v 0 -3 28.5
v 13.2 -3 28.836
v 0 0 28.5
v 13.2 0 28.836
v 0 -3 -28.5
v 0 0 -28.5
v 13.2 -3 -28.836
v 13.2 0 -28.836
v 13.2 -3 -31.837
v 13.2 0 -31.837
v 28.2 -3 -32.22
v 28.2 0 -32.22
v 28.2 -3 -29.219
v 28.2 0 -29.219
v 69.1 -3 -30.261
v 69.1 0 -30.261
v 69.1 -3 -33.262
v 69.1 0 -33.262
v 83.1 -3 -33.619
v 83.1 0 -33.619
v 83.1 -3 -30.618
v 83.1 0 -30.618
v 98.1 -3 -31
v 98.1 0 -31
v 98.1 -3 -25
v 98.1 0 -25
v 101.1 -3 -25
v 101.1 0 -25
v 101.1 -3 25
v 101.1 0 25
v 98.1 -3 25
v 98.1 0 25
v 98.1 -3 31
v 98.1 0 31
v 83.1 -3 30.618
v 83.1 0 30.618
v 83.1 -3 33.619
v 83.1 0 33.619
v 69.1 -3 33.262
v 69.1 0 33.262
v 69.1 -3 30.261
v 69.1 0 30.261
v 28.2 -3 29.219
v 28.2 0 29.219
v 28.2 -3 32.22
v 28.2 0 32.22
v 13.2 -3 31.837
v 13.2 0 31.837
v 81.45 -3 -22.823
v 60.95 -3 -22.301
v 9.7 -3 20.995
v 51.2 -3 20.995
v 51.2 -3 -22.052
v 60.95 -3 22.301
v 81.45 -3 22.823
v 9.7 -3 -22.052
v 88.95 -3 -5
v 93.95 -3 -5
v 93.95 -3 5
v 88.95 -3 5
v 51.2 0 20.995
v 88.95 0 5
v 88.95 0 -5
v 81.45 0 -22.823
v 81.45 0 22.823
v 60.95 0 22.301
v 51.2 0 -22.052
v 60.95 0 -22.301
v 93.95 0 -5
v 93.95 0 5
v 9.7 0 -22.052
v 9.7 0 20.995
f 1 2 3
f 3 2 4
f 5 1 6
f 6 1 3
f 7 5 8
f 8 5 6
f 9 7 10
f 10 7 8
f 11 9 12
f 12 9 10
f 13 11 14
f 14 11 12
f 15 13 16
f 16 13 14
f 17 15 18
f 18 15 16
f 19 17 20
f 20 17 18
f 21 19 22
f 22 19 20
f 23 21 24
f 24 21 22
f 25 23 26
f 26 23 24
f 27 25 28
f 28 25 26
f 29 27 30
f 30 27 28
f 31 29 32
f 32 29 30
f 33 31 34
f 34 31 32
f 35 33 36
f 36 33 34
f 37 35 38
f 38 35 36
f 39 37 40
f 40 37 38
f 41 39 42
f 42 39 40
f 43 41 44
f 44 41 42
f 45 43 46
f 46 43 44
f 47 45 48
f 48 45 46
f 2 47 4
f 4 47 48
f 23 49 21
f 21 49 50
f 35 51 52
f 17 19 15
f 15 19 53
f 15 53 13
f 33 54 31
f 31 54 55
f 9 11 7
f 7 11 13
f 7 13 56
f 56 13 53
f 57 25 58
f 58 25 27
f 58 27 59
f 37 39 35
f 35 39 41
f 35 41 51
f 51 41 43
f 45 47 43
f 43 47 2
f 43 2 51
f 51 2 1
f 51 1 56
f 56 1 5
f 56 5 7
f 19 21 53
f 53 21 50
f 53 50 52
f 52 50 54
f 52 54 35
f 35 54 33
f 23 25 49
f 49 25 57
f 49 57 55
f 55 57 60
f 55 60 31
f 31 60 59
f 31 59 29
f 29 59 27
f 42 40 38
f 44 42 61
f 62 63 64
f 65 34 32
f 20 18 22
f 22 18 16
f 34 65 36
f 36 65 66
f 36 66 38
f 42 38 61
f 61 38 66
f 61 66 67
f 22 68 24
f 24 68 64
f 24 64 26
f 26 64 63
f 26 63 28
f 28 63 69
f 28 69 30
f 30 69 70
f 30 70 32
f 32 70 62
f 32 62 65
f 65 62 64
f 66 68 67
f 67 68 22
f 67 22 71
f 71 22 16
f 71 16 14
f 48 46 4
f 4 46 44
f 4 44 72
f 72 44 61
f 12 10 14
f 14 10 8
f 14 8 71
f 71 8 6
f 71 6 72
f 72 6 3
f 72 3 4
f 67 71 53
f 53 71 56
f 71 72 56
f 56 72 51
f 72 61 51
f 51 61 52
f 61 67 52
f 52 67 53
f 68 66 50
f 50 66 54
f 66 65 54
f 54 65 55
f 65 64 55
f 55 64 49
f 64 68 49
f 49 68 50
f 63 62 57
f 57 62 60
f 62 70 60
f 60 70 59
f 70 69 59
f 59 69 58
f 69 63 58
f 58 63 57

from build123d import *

# Parameters (mm, degrees)
BOSS_EXTRUDE1_DEPTH = 3
SKETCH2_W           = 41.5
SKETCH2_H           = 43.04695539
CUT_EXTRUDE1_DEPTH  = 3


with BuildPart() as part:
    # Sketch1 → Boss-Extrude1 (new body)
    with BuildSketch(Plane(origin=(0, 0, 0), x_dir=(1, 0, 0), z_dir=(0, 1, 0))):
        Polygon((0, -28.5), (0, 28.5), (13.2, 28.836391437), (13.2, 31.837365446), (28.2, 32.219628443), (28.2, 29.218654434), (69.1, 30.260958206), (69.1, 33.261932214), (83.1, 33.618711012), (83.1, 30.617737003), (98.1, 31), (98.1, 25), (101.1, 25), (101.1, -25), (98.1, -25), (98.1, -31), (83.1, -30.617737003), (83.1, -33.618711012), (69.1, -33.261932214), (69.1, -30.260958206), (28.2, -29.218654434), (28.2, -32.219628443), (13.2, -31.837365446), (13.2, -28.836391437), align=None)
    extrude(amount=-BOSS_EXTRUDE1_DEPTH)

    # Sketch2 → Cut-Extrude1 (cut)
    with BuildSketch(Plane.XZ.offset(3)):
        Polygon((60.95, 22.300745789), (60.95, -22.300745789), (81.45, -22.823171885), (81.45, 22.823171885), align=None)
        Polygon((93.95, 0), (93.95, 5), (88.95, 5), (88.95, -5), (93.95, -5), align=None)
        with Locations((30.45, -0.528797146)):
            Rectangle(SKETCH2_W, SKETCH2_H)
    extrude(amount=-CUT_EXTRUDE1_DEPTH, mode=Mode.SUBTRACT)


solid = part.part
